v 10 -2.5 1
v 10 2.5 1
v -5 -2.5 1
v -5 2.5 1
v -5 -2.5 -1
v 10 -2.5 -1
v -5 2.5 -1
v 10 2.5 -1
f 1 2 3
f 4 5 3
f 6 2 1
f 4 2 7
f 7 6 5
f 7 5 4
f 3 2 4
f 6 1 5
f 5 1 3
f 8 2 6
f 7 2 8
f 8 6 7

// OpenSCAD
// Define the geometric part
module geometric_part() {
    difference() {
        // Base shape: a trapezoidal prism
        hull() {
            translate([0, 0, 0]) cube([10, 5, 2], center = true);
            translate([5, 0, 0]) cube([10, 5, 2], center = true);
        }
    }
}

// Render the part
geometric_part();
